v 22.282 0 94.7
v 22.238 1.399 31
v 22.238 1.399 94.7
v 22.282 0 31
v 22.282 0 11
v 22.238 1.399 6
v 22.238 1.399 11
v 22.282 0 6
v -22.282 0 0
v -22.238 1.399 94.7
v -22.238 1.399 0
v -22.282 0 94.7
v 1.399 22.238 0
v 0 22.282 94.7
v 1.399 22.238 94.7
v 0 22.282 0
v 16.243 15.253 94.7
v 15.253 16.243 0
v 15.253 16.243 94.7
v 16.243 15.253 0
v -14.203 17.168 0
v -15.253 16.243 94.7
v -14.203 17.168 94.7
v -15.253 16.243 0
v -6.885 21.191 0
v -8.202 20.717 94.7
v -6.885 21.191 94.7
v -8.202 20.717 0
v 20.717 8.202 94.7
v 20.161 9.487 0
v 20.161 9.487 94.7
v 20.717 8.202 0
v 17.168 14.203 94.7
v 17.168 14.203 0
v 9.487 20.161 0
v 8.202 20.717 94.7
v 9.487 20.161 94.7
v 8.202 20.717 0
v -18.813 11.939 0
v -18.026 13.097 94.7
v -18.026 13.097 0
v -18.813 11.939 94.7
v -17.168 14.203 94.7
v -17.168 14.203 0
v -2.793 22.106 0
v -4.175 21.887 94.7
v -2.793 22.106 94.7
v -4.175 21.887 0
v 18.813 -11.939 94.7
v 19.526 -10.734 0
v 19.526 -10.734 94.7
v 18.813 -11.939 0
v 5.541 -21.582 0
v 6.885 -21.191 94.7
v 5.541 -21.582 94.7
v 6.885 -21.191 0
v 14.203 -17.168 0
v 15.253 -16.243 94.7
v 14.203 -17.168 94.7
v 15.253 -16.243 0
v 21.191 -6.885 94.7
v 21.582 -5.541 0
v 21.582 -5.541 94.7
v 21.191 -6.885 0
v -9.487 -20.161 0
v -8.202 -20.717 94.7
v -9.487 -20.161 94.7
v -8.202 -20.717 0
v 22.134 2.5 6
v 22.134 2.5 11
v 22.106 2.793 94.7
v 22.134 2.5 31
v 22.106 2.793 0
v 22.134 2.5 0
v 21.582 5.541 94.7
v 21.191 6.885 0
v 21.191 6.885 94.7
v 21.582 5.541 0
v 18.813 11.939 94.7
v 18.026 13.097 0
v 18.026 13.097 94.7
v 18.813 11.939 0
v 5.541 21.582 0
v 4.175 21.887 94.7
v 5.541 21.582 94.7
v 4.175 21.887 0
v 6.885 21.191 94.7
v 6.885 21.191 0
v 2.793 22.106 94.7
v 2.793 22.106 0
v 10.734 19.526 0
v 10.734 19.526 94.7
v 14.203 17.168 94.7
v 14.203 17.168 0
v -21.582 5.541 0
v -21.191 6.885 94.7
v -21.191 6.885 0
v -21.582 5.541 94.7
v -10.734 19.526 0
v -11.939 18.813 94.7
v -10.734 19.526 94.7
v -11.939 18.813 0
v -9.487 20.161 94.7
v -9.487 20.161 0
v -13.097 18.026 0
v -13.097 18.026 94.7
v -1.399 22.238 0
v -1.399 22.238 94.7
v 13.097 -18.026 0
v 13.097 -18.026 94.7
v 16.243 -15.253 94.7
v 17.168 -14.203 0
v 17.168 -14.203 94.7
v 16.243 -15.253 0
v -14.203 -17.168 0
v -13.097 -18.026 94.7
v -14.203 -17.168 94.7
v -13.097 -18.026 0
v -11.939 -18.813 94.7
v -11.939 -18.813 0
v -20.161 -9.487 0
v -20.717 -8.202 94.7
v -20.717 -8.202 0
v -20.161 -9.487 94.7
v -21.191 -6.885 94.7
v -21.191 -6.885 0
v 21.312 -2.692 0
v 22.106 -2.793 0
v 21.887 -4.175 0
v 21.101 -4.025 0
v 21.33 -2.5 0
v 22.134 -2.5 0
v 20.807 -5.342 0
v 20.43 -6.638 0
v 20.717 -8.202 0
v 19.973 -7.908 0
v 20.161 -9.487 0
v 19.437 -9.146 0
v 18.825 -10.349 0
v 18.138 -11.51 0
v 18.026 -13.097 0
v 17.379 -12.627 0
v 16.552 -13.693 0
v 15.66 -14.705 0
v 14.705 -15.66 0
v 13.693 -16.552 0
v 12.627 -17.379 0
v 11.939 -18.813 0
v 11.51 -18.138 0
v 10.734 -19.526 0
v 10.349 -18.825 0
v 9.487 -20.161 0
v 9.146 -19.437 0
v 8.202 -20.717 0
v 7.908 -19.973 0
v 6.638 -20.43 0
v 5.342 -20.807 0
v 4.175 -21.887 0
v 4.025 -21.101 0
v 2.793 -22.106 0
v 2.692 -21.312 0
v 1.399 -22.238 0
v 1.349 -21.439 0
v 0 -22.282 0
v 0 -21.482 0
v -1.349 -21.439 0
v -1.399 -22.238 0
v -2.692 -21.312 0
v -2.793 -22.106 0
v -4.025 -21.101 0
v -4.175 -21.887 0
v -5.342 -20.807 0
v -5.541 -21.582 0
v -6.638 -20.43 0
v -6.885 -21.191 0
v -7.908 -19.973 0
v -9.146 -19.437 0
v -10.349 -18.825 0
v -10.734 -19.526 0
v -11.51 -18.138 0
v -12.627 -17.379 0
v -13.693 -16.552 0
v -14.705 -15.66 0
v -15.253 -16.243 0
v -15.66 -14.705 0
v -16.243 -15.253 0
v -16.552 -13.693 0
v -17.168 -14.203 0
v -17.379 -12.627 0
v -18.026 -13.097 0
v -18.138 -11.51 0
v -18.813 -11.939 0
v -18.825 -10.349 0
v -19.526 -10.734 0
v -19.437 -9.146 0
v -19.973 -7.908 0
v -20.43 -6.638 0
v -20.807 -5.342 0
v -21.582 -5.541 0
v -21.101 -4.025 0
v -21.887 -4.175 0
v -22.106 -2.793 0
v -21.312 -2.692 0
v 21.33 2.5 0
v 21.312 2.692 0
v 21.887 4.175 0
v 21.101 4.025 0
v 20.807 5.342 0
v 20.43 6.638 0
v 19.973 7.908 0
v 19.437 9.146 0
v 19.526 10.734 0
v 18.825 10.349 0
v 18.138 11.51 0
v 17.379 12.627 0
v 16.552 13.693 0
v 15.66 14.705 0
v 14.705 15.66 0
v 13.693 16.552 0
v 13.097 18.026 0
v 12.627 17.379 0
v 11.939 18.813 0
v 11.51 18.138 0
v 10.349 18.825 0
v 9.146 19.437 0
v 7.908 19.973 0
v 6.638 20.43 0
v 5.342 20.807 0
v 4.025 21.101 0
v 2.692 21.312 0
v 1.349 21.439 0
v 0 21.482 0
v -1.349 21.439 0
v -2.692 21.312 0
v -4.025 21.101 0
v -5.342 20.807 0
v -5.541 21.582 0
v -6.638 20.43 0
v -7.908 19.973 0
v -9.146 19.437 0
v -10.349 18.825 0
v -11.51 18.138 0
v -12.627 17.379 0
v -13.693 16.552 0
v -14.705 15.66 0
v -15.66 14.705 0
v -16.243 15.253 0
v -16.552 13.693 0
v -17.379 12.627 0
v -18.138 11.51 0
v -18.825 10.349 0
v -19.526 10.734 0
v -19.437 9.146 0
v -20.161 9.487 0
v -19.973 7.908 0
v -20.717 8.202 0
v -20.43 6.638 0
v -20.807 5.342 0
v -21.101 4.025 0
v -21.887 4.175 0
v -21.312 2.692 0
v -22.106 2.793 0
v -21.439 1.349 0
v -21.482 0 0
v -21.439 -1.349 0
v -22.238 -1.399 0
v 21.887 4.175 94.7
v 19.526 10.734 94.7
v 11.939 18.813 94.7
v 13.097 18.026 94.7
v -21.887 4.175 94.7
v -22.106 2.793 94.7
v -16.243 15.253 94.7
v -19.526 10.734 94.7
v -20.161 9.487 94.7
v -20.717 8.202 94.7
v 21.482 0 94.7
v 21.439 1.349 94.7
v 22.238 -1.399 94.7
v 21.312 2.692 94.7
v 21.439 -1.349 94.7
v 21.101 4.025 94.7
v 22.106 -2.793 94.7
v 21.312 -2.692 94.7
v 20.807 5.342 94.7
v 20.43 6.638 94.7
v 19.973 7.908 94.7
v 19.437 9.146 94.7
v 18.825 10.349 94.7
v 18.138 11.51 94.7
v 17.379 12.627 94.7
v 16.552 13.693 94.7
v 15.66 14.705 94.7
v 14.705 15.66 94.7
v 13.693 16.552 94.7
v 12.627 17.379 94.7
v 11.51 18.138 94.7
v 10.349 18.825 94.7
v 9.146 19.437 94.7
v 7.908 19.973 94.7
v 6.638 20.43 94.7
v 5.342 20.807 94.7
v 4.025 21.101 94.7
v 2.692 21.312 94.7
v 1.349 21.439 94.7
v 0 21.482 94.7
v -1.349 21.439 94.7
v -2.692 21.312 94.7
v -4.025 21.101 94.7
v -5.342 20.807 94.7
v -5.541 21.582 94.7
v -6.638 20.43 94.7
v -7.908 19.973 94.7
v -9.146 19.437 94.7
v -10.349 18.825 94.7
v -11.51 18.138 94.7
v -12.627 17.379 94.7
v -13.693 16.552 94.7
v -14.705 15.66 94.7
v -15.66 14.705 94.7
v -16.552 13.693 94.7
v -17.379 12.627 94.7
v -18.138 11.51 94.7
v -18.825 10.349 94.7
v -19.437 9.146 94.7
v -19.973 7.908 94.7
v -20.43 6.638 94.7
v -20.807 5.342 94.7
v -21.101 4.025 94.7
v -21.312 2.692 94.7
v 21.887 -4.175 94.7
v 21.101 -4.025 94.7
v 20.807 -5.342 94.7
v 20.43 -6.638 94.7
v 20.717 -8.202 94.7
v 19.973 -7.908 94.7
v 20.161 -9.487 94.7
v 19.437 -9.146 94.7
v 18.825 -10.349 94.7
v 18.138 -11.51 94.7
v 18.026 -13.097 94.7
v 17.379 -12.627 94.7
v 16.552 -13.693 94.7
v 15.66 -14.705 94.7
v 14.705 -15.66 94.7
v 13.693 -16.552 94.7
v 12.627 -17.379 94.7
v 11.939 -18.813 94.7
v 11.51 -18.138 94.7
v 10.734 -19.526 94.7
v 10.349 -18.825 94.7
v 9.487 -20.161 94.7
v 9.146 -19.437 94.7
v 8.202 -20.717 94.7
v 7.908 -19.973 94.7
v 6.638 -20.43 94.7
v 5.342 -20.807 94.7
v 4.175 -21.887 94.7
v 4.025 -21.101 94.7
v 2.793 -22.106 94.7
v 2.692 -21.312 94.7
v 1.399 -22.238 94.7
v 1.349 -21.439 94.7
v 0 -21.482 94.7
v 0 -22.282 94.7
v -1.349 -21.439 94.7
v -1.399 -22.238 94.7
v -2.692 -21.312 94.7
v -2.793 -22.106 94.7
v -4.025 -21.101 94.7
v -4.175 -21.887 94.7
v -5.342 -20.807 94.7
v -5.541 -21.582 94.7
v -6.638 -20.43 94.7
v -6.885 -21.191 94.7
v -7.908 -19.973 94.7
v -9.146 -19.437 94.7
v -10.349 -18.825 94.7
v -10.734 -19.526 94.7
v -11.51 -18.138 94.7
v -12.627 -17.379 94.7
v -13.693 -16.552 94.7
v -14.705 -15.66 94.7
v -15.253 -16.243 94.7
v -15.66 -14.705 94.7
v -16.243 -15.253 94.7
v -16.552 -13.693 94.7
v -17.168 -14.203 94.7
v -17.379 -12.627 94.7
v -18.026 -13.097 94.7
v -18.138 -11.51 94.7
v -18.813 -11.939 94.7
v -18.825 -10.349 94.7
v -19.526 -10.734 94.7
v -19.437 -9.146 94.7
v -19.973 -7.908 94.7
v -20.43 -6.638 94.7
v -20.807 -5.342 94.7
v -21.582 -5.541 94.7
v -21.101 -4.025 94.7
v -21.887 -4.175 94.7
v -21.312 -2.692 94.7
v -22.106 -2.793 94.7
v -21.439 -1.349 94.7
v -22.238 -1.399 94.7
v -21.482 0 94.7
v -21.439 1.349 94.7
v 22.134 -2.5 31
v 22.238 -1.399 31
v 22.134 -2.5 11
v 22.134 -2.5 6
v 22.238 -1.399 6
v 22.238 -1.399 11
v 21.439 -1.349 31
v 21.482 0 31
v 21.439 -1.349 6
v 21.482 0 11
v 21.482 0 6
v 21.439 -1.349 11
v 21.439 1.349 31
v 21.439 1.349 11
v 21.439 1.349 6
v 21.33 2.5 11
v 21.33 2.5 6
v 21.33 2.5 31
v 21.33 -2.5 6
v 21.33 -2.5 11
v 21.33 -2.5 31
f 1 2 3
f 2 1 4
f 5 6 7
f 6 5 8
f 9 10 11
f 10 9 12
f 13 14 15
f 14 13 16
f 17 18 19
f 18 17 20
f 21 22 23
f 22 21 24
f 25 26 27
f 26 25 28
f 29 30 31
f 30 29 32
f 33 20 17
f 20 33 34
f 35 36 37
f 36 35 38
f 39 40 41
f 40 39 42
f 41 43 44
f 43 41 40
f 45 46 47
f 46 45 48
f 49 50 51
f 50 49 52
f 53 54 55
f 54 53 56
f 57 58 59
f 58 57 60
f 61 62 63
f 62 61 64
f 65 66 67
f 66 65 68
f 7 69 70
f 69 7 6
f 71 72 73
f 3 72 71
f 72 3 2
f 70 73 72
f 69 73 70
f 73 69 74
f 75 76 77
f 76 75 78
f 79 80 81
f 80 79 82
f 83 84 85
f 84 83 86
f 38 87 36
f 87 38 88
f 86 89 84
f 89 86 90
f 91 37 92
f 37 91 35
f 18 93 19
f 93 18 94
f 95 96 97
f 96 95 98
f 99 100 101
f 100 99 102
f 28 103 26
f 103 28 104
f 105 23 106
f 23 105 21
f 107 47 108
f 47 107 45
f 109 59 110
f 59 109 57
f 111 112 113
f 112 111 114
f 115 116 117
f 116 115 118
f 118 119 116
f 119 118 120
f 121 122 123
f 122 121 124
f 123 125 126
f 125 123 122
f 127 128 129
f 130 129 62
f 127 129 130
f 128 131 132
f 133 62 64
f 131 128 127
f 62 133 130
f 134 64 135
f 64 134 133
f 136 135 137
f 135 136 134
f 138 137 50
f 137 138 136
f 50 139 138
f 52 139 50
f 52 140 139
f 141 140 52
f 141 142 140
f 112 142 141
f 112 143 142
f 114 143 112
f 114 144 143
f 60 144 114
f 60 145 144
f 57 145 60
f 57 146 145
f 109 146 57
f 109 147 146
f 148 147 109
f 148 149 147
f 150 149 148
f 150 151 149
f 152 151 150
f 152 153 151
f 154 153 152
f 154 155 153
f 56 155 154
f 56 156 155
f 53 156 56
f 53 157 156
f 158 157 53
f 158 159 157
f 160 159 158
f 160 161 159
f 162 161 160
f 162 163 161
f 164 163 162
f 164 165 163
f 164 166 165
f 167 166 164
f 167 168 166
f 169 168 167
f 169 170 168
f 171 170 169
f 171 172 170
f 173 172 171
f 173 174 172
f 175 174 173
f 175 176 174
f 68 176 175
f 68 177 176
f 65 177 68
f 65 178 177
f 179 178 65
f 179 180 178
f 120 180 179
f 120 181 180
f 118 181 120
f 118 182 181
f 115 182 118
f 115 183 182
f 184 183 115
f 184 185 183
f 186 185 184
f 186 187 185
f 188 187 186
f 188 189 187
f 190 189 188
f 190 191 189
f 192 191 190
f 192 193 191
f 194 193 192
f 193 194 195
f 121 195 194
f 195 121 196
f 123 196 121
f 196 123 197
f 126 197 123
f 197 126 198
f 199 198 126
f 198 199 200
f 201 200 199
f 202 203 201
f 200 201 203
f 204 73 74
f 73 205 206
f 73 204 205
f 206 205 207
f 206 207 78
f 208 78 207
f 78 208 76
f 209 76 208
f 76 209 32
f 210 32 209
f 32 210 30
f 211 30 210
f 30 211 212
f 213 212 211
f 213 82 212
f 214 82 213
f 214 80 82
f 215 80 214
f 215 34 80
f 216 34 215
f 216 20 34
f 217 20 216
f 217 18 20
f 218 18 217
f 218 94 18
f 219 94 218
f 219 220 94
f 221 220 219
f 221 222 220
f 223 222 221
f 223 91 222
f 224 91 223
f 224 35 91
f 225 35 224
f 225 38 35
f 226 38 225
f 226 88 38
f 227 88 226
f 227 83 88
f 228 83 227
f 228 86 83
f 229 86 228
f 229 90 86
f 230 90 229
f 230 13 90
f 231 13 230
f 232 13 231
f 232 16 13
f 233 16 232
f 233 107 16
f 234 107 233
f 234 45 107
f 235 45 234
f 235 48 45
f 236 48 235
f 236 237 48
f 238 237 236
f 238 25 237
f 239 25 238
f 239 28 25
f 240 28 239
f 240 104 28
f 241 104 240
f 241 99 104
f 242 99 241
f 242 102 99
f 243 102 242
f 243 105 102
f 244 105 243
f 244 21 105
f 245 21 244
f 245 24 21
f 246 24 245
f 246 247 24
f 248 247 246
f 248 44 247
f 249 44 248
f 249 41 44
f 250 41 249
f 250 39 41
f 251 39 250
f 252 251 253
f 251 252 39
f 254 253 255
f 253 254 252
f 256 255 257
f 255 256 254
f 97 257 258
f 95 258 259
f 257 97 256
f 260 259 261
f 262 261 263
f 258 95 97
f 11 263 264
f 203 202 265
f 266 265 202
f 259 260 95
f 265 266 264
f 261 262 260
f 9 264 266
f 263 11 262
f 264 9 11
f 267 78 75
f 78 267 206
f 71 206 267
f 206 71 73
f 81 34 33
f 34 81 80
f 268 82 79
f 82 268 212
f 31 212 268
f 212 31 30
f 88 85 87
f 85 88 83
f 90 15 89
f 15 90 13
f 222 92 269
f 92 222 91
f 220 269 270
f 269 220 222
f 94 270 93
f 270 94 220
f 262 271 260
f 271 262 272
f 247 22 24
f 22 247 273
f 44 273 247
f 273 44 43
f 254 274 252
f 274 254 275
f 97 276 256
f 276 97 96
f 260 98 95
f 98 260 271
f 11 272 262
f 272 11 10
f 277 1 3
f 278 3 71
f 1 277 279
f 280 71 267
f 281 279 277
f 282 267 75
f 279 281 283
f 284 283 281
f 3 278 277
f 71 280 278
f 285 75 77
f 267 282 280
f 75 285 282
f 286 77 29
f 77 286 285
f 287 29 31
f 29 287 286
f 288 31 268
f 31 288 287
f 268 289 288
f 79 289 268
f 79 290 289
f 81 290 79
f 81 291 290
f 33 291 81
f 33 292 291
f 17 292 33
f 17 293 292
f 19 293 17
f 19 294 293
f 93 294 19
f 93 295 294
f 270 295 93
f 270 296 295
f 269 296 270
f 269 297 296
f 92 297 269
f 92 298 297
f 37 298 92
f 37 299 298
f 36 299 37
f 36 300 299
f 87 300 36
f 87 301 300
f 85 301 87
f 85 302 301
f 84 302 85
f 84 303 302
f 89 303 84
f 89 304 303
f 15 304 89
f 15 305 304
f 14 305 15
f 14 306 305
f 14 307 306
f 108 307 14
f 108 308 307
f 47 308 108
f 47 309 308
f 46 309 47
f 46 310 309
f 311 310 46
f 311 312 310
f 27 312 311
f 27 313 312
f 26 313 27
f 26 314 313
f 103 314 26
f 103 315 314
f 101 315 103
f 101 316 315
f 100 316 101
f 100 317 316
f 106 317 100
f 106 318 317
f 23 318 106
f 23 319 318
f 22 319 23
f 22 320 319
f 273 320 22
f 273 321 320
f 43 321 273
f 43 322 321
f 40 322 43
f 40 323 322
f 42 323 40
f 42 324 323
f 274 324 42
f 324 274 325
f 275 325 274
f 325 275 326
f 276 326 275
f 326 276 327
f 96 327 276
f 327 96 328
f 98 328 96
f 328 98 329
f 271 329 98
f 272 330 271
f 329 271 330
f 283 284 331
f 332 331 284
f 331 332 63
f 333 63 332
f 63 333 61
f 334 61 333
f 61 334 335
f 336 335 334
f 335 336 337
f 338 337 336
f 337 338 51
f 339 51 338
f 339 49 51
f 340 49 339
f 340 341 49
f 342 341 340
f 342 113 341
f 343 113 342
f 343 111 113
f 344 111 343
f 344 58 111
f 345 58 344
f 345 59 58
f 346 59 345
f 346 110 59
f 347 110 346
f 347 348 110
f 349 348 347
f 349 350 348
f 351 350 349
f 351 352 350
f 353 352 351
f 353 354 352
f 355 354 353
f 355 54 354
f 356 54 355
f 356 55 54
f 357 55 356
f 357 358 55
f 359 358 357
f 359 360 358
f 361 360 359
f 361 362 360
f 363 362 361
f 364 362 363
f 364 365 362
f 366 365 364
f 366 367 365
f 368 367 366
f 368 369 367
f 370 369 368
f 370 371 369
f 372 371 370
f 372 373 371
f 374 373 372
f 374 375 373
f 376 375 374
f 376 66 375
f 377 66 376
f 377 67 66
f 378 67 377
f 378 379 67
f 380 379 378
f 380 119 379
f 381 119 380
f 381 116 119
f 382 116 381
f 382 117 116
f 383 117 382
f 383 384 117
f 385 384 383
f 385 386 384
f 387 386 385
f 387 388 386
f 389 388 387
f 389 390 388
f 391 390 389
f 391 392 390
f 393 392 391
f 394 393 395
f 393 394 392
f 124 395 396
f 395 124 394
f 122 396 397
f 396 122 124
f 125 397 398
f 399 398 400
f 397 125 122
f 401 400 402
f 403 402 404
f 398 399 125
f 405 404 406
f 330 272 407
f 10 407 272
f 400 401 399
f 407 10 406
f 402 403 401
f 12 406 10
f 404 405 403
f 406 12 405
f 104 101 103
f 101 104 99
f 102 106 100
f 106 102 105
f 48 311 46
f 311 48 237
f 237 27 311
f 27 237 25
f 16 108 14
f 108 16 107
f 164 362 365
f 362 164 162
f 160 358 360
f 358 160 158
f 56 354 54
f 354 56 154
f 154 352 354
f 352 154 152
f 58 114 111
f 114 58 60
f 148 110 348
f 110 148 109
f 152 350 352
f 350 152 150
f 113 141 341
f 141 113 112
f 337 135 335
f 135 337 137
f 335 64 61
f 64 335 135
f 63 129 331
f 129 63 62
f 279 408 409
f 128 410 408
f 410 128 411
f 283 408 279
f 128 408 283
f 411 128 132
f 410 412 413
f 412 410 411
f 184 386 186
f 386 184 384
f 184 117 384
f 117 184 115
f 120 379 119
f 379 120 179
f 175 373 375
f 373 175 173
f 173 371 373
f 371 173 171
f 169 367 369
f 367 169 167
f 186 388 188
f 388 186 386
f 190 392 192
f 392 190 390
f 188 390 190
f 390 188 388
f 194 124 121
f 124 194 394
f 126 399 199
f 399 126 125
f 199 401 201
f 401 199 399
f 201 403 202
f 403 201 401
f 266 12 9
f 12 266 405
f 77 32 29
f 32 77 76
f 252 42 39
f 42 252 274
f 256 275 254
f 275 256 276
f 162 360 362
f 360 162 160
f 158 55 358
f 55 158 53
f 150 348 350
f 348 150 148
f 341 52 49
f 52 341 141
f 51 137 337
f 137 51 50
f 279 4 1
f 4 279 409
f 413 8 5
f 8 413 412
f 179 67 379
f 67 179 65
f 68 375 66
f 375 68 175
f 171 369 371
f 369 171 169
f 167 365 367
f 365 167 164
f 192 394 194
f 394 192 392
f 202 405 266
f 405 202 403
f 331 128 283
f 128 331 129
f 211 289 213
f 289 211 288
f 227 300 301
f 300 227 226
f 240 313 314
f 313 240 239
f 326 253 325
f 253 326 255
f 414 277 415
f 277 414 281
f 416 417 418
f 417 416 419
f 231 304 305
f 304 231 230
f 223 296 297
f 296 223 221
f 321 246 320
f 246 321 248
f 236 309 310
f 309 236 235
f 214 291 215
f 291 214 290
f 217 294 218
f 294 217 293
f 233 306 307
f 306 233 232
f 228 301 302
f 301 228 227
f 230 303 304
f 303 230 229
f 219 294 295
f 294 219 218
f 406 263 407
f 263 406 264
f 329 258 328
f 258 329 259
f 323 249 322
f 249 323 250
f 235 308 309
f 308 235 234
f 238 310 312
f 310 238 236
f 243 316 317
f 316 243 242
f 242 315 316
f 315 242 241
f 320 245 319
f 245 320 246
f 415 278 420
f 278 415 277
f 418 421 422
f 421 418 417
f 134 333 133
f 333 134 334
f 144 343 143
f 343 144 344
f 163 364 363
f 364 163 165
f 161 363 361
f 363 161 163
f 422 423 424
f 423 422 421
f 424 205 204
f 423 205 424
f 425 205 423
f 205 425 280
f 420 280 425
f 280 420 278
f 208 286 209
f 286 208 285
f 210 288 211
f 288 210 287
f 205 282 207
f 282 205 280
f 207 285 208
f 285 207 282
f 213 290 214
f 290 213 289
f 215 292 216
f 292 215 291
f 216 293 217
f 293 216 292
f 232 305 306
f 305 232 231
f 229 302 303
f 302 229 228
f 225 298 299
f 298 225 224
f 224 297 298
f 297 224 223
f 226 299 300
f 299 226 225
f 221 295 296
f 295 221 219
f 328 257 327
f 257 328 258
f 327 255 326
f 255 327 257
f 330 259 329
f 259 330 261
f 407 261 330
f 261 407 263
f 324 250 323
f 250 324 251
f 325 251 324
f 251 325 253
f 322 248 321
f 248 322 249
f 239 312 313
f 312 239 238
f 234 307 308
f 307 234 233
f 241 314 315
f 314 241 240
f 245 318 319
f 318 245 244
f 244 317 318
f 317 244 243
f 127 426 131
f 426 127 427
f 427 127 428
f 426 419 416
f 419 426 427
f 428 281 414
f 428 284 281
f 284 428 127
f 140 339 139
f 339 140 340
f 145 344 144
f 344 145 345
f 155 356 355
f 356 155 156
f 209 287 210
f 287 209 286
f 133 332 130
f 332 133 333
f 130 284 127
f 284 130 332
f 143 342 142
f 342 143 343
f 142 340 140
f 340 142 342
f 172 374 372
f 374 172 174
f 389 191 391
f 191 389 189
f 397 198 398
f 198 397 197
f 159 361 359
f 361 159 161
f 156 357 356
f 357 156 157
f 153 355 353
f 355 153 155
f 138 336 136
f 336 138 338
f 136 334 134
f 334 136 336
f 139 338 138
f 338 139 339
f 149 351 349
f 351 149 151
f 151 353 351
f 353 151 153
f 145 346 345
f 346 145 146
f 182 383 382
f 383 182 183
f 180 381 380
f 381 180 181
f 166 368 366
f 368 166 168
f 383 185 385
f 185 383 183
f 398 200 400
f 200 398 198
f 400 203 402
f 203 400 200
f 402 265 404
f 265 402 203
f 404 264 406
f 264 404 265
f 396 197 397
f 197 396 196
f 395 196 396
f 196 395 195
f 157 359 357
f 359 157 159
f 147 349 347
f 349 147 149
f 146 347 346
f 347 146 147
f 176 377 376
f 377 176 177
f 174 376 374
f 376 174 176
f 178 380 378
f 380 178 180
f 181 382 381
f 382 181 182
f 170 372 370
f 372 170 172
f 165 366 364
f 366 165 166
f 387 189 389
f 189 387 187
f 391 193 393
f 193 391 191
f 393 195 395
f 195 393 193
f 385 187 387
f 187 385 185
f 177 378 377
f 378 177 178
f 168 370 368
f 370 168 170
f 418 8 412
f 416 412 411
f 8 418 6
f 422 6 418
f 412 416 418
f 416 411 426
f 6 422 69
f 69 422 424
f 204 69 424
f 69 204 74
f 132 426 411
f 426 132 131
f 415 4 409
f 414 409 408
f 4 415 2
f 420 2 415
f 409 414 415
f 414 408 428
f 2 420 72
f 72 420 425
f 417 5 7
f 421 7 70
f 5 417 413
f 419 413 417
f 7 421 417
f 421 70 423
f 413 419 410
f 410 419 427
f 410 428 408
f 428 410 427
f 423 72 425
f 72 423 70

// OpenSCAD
// Center cylinder of the torch shell
ls_h = 12.1;
ls_l = 140;
wall = 0.8;
p_h = 7 * 12.1;
total_h = p_h + 10;
radius = ls_l / (2* PI);

// Cutout
c_h = 7;
c_w = 5;
dz = total_h - p_h +1;
dx = radius - c_w + 1;

difference() {
    cylinder(h = total_h, r = radius, $fn=100);
    translate([0, 0, -3])
    cylinder(h = total_h + 6, r = radius-wall, $fn=100);

    translate( [radius, 0, c_h / 2 - 1] )
    cube( size = [ 5, c_w, c_h ], center = true );
    
    translate( [dx, -c_w/2, dz] )
    cube( size = [ 5, c_w, 20 ], center = false );
}


//translate( [radius, 0, c_h / 2 - 1] );

color( "Fuchsia" ) {

}
